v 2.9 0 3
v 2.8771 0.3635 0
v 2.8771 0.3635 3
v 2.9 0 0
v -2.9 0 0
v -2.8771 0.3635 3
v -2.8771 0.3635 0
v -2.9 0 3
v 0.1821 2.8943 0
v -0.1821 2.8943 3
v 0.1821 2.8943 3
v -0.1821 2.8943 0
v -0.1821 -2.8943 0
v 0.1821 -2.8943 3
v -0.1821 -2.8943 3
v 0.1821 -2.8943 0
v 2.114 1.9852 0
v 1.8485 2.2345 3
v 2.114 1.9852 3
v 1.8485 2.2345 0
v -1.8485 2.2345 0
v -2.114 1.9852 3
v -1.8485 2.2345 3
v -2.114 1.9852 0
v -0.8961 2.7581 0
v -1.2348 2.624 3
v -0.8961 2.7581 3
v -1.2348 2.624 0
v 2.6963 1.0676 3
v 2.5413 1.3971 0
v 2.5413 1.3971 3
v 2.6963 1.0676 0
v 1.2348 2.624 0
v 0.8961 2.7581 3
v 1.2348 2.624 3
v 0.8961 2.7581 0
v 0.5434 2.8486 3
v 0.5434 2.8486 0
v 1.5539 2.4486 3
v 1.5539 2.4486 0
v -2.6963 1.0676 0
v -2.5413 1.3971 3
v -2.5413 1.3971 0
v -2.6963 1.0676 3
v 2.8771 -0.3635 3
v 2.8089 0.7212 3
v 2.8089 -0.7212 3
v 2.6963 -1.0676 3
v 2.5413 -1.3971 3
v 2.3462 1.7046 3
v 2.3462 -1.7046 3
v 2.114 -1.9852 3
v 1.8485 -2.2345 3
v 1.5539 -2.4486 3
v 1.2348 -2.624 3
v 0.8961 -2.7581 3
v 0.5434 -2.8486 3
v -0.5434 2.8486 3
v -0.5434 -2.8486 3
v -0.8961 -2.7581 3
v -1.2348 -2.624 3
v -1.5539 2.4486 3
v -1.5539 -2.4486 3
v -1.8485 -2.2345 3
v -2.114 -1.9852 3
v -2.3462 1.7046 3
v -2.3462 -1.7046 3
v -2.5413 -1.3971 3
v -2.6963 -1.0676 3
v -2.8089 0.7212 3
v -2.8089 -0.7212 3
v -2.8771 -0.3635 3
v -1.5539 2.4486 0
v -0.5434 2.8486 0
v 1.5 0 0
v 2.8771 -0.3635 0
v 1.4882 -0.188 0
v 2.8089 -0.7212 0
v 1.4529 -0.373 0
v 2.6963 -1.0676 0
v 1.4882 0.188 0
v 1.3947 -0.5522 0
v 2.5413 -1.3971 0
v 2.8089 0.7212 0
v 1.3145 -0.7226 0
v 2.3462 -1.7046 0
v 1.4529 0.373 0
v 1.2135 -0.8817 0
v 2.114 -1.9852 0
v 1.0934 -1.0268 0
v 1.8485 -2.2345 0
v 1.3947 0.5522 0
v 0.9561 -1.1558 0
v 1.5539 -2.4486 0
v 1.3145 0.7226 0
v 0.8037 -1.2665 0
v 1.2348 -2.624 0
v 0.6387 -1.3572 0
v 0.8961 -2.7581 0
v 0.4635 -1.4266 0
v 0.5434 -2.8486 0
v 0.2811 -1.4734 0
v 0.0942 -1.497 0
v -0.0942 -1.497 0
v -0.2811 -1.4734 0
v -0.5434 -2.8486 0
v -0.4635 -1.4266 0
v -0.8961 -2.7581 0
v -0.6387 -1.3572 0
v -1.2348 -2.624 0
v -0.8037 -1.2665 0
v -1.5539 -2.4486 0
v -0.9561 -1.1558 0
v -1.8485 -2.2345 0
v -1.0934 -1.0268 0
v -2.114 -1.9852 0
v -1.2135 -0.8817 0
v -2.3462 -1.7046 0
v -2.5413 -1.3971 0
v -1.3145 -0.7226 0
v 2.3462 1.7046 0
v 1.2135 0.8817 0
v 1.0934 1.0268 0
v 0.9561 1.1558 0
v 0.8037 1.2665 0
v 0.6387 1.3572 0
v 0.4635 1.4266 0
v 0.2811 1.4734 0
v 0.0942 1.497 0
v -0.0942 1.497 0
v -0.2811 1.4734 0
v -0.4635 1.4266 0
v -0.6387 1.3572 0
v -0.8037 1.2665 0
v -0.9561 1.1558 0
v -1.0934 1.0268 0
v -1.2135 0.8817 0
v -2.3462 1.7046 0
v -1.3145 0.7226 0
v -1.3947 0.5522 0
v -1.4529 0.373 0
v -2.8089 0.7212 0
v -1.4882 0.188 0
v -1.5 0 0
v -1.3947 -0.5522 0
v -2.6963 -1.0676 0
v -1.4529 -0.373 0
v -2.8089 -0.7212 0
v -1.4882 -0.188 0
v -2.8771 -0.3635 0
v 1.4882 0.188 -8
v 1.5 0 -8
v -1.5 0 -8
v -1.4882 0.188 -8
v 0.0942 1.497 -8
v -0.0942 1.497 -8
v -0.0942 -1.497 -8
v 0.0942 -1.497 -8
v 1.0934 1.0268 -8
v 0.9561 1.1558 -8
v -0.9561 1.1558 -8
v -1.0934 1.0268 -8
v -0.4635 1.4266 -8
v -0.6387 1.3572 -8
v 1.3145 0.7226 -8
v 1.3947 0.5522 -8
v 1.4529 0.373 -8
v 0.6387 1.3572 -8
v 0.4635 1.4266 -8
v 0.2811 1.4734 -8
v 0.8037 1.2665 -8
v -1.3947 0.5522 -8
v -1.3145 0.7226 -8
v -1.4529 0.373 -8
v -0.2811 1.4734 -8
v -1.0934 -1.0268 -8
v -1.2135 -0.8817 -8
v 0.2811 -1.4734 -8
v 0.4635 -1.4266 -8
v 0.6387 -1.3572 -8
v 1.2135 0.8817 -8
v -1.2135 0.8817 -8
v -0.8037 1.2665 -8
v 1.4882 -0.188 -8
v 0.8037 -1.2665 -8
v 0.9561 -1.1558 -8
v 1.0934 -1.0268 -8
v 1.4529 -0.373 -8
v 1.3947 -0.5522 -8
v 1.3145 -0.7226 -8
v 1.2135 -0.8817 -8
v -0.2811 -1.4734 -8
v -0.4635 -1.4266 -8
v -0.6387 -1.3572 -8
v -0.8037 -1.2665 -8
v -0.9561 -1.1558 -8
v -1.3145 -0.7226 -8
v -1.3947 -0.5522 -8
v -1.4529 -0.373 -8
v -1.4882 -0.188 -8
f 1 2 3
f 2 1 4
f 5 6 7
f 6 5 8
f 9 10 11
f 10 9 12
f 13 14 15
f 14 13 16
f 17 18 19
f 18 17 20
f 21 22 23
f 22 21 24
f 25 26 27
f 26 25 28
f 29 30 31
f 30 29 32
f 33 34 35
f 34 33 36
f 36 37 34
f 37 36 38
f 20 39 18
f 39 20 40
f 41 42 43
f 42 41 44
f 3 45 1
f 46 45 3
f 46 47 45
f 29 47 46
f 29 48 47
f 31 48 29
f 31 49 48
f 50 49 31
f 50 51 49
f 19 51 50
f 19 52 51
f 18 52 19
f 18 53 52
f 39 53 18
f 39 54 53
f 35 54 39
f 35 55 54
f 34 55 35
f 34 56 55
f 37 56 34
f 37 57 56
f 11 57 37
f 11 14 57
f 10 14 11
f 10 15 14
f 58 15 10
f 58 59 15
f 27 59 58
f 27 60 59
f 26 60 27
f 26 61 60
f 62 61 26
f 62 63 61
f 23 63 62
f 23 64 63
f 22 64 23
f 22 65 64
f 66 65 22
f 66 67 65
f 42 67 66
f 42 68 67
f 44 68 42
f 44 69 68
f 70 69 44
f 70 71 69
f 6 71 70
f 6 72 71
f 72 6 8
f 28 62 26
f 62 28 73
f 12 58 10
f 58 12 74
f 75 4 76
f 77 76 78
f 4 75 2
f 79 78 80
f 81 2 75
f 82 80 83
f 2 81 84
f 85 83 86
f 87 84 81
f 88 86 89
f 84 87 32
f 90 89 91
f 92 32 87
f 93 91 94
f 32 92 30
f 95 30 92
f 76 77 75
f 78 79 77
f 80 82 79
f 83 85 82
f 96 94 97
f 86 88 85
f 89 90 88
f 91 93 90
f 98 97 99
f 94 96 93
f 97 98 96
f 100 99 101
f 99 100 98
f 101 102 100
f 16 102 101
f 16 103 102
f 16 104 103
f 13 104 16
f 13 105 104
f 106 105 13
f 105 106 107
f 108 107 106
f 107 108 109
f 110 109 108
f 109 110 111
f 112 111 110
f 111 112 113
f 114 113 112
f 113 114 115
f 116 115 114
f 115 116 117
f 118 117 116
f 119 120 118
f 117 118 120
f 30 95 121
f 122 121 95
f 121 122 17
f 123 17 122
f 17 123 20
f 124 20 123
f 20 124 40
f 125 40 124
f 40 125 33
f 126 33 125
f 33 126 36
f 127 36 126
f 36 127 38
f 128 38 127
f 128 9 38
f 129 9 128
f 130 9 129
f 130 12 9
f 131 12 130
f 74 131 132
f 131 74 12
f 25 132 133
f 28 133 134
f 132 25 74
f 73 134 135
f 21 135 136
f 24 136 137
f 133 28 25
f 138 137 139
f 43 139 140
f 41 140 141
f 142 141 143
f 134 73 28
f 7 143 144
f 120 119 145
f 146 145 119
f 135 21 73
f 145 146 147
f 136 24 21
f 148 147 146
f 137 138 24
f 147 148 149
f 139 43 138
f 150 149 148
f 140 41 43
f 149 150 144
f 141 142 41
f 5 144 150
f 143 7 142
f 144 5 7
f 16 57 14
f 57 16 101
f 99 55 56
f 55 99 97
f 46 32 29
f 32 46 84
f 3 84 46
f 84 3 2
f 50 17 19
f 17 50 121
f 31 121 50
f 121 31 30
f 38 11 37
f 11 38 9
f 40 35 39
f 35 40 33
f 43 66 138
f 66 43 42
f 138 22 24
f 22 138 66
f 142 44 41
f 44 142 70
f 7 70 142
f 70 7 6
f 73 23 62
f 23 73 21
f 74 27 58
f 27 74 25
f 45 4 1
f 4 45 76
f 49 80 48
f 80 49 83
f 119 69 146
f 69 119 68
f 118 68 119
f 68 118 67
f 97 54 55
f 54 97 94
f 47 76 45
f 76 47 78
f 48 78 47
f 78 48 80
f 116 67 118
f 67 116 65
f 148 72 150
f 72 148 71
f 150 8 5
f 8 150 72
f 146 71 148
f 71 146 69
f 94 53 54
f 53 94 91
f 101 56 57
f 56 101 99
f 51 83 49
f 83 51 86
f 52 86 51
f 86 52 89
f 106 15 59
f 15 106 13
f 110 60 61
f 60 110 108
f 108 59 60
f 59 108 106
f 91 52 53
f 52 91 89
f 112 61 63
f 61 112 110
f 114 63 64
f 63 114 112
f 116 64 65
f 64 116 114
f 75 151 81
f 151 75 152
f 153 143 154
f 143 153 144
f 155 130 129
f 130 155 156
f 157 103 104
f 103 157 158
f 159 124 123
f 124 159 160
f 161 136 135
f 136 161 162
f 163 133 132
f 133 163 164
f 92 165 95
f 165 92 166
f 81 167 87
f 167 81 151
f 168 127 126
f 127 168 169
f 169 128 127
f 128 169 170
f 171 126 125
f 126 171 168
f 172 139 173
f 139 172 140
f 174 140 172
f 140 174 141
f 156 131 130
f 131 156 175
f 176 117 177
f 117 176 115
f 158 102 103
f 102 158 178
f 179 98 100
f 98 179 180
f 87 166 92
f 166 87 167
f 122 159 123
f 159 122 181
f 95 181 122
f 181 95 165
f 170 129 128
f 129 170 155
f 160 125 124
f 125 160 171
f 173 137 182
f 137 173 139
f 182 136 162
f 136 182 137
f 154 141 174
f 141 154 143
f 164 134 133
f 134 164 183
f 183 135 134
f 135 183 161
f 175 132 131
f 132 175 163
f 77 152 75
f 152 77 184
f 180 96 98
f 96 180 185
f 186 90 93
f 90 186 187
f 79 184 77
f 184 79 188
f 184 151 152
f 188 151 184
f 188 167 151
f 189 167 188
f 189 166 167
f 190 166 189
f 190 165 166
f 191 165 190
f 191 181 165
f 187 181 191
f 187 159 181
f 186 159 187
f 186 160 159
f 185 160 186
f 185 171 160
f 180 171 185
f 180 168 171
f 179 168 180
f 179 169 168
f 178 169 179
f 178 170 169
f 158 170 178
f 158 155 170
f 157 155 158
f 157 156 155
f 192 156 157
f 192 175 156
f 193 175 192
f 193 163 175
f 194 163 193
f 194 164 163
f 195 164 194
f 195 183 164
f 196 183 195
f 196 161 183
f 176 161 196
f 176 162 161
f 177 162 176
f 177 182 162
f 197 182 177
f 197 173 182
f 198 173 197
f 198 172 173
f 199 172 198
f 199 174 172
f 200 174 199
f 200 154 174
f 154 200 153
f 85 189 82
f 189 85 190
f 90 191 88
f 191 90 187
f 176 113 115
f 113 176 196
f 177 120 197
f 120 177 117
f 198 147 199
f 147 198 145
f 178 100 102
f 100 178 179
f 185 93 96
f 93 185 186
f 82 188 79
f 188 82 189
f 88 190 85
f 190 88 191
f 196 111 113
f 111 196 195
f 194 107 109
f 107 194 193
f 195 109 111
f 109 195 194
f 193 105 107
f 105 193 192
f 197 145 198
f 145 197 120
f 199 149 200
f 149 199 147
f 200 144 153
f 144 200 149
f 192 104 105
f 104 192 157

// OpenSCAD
$fn = 50;


difference() {
	union() {
		translate(v = [0, 0, 0]) {
			rotate(a = [0, 0, 0]) {
				cylinder(h = 3, r = 2.9000000000);
			}
		}
		translate(v = [0, 0, -8]) {
			rotate(a = [0, 0, 0]) {
				cylinder(h = 8, r = 1.5000000000);
			}
		}
	}
	union();
}
